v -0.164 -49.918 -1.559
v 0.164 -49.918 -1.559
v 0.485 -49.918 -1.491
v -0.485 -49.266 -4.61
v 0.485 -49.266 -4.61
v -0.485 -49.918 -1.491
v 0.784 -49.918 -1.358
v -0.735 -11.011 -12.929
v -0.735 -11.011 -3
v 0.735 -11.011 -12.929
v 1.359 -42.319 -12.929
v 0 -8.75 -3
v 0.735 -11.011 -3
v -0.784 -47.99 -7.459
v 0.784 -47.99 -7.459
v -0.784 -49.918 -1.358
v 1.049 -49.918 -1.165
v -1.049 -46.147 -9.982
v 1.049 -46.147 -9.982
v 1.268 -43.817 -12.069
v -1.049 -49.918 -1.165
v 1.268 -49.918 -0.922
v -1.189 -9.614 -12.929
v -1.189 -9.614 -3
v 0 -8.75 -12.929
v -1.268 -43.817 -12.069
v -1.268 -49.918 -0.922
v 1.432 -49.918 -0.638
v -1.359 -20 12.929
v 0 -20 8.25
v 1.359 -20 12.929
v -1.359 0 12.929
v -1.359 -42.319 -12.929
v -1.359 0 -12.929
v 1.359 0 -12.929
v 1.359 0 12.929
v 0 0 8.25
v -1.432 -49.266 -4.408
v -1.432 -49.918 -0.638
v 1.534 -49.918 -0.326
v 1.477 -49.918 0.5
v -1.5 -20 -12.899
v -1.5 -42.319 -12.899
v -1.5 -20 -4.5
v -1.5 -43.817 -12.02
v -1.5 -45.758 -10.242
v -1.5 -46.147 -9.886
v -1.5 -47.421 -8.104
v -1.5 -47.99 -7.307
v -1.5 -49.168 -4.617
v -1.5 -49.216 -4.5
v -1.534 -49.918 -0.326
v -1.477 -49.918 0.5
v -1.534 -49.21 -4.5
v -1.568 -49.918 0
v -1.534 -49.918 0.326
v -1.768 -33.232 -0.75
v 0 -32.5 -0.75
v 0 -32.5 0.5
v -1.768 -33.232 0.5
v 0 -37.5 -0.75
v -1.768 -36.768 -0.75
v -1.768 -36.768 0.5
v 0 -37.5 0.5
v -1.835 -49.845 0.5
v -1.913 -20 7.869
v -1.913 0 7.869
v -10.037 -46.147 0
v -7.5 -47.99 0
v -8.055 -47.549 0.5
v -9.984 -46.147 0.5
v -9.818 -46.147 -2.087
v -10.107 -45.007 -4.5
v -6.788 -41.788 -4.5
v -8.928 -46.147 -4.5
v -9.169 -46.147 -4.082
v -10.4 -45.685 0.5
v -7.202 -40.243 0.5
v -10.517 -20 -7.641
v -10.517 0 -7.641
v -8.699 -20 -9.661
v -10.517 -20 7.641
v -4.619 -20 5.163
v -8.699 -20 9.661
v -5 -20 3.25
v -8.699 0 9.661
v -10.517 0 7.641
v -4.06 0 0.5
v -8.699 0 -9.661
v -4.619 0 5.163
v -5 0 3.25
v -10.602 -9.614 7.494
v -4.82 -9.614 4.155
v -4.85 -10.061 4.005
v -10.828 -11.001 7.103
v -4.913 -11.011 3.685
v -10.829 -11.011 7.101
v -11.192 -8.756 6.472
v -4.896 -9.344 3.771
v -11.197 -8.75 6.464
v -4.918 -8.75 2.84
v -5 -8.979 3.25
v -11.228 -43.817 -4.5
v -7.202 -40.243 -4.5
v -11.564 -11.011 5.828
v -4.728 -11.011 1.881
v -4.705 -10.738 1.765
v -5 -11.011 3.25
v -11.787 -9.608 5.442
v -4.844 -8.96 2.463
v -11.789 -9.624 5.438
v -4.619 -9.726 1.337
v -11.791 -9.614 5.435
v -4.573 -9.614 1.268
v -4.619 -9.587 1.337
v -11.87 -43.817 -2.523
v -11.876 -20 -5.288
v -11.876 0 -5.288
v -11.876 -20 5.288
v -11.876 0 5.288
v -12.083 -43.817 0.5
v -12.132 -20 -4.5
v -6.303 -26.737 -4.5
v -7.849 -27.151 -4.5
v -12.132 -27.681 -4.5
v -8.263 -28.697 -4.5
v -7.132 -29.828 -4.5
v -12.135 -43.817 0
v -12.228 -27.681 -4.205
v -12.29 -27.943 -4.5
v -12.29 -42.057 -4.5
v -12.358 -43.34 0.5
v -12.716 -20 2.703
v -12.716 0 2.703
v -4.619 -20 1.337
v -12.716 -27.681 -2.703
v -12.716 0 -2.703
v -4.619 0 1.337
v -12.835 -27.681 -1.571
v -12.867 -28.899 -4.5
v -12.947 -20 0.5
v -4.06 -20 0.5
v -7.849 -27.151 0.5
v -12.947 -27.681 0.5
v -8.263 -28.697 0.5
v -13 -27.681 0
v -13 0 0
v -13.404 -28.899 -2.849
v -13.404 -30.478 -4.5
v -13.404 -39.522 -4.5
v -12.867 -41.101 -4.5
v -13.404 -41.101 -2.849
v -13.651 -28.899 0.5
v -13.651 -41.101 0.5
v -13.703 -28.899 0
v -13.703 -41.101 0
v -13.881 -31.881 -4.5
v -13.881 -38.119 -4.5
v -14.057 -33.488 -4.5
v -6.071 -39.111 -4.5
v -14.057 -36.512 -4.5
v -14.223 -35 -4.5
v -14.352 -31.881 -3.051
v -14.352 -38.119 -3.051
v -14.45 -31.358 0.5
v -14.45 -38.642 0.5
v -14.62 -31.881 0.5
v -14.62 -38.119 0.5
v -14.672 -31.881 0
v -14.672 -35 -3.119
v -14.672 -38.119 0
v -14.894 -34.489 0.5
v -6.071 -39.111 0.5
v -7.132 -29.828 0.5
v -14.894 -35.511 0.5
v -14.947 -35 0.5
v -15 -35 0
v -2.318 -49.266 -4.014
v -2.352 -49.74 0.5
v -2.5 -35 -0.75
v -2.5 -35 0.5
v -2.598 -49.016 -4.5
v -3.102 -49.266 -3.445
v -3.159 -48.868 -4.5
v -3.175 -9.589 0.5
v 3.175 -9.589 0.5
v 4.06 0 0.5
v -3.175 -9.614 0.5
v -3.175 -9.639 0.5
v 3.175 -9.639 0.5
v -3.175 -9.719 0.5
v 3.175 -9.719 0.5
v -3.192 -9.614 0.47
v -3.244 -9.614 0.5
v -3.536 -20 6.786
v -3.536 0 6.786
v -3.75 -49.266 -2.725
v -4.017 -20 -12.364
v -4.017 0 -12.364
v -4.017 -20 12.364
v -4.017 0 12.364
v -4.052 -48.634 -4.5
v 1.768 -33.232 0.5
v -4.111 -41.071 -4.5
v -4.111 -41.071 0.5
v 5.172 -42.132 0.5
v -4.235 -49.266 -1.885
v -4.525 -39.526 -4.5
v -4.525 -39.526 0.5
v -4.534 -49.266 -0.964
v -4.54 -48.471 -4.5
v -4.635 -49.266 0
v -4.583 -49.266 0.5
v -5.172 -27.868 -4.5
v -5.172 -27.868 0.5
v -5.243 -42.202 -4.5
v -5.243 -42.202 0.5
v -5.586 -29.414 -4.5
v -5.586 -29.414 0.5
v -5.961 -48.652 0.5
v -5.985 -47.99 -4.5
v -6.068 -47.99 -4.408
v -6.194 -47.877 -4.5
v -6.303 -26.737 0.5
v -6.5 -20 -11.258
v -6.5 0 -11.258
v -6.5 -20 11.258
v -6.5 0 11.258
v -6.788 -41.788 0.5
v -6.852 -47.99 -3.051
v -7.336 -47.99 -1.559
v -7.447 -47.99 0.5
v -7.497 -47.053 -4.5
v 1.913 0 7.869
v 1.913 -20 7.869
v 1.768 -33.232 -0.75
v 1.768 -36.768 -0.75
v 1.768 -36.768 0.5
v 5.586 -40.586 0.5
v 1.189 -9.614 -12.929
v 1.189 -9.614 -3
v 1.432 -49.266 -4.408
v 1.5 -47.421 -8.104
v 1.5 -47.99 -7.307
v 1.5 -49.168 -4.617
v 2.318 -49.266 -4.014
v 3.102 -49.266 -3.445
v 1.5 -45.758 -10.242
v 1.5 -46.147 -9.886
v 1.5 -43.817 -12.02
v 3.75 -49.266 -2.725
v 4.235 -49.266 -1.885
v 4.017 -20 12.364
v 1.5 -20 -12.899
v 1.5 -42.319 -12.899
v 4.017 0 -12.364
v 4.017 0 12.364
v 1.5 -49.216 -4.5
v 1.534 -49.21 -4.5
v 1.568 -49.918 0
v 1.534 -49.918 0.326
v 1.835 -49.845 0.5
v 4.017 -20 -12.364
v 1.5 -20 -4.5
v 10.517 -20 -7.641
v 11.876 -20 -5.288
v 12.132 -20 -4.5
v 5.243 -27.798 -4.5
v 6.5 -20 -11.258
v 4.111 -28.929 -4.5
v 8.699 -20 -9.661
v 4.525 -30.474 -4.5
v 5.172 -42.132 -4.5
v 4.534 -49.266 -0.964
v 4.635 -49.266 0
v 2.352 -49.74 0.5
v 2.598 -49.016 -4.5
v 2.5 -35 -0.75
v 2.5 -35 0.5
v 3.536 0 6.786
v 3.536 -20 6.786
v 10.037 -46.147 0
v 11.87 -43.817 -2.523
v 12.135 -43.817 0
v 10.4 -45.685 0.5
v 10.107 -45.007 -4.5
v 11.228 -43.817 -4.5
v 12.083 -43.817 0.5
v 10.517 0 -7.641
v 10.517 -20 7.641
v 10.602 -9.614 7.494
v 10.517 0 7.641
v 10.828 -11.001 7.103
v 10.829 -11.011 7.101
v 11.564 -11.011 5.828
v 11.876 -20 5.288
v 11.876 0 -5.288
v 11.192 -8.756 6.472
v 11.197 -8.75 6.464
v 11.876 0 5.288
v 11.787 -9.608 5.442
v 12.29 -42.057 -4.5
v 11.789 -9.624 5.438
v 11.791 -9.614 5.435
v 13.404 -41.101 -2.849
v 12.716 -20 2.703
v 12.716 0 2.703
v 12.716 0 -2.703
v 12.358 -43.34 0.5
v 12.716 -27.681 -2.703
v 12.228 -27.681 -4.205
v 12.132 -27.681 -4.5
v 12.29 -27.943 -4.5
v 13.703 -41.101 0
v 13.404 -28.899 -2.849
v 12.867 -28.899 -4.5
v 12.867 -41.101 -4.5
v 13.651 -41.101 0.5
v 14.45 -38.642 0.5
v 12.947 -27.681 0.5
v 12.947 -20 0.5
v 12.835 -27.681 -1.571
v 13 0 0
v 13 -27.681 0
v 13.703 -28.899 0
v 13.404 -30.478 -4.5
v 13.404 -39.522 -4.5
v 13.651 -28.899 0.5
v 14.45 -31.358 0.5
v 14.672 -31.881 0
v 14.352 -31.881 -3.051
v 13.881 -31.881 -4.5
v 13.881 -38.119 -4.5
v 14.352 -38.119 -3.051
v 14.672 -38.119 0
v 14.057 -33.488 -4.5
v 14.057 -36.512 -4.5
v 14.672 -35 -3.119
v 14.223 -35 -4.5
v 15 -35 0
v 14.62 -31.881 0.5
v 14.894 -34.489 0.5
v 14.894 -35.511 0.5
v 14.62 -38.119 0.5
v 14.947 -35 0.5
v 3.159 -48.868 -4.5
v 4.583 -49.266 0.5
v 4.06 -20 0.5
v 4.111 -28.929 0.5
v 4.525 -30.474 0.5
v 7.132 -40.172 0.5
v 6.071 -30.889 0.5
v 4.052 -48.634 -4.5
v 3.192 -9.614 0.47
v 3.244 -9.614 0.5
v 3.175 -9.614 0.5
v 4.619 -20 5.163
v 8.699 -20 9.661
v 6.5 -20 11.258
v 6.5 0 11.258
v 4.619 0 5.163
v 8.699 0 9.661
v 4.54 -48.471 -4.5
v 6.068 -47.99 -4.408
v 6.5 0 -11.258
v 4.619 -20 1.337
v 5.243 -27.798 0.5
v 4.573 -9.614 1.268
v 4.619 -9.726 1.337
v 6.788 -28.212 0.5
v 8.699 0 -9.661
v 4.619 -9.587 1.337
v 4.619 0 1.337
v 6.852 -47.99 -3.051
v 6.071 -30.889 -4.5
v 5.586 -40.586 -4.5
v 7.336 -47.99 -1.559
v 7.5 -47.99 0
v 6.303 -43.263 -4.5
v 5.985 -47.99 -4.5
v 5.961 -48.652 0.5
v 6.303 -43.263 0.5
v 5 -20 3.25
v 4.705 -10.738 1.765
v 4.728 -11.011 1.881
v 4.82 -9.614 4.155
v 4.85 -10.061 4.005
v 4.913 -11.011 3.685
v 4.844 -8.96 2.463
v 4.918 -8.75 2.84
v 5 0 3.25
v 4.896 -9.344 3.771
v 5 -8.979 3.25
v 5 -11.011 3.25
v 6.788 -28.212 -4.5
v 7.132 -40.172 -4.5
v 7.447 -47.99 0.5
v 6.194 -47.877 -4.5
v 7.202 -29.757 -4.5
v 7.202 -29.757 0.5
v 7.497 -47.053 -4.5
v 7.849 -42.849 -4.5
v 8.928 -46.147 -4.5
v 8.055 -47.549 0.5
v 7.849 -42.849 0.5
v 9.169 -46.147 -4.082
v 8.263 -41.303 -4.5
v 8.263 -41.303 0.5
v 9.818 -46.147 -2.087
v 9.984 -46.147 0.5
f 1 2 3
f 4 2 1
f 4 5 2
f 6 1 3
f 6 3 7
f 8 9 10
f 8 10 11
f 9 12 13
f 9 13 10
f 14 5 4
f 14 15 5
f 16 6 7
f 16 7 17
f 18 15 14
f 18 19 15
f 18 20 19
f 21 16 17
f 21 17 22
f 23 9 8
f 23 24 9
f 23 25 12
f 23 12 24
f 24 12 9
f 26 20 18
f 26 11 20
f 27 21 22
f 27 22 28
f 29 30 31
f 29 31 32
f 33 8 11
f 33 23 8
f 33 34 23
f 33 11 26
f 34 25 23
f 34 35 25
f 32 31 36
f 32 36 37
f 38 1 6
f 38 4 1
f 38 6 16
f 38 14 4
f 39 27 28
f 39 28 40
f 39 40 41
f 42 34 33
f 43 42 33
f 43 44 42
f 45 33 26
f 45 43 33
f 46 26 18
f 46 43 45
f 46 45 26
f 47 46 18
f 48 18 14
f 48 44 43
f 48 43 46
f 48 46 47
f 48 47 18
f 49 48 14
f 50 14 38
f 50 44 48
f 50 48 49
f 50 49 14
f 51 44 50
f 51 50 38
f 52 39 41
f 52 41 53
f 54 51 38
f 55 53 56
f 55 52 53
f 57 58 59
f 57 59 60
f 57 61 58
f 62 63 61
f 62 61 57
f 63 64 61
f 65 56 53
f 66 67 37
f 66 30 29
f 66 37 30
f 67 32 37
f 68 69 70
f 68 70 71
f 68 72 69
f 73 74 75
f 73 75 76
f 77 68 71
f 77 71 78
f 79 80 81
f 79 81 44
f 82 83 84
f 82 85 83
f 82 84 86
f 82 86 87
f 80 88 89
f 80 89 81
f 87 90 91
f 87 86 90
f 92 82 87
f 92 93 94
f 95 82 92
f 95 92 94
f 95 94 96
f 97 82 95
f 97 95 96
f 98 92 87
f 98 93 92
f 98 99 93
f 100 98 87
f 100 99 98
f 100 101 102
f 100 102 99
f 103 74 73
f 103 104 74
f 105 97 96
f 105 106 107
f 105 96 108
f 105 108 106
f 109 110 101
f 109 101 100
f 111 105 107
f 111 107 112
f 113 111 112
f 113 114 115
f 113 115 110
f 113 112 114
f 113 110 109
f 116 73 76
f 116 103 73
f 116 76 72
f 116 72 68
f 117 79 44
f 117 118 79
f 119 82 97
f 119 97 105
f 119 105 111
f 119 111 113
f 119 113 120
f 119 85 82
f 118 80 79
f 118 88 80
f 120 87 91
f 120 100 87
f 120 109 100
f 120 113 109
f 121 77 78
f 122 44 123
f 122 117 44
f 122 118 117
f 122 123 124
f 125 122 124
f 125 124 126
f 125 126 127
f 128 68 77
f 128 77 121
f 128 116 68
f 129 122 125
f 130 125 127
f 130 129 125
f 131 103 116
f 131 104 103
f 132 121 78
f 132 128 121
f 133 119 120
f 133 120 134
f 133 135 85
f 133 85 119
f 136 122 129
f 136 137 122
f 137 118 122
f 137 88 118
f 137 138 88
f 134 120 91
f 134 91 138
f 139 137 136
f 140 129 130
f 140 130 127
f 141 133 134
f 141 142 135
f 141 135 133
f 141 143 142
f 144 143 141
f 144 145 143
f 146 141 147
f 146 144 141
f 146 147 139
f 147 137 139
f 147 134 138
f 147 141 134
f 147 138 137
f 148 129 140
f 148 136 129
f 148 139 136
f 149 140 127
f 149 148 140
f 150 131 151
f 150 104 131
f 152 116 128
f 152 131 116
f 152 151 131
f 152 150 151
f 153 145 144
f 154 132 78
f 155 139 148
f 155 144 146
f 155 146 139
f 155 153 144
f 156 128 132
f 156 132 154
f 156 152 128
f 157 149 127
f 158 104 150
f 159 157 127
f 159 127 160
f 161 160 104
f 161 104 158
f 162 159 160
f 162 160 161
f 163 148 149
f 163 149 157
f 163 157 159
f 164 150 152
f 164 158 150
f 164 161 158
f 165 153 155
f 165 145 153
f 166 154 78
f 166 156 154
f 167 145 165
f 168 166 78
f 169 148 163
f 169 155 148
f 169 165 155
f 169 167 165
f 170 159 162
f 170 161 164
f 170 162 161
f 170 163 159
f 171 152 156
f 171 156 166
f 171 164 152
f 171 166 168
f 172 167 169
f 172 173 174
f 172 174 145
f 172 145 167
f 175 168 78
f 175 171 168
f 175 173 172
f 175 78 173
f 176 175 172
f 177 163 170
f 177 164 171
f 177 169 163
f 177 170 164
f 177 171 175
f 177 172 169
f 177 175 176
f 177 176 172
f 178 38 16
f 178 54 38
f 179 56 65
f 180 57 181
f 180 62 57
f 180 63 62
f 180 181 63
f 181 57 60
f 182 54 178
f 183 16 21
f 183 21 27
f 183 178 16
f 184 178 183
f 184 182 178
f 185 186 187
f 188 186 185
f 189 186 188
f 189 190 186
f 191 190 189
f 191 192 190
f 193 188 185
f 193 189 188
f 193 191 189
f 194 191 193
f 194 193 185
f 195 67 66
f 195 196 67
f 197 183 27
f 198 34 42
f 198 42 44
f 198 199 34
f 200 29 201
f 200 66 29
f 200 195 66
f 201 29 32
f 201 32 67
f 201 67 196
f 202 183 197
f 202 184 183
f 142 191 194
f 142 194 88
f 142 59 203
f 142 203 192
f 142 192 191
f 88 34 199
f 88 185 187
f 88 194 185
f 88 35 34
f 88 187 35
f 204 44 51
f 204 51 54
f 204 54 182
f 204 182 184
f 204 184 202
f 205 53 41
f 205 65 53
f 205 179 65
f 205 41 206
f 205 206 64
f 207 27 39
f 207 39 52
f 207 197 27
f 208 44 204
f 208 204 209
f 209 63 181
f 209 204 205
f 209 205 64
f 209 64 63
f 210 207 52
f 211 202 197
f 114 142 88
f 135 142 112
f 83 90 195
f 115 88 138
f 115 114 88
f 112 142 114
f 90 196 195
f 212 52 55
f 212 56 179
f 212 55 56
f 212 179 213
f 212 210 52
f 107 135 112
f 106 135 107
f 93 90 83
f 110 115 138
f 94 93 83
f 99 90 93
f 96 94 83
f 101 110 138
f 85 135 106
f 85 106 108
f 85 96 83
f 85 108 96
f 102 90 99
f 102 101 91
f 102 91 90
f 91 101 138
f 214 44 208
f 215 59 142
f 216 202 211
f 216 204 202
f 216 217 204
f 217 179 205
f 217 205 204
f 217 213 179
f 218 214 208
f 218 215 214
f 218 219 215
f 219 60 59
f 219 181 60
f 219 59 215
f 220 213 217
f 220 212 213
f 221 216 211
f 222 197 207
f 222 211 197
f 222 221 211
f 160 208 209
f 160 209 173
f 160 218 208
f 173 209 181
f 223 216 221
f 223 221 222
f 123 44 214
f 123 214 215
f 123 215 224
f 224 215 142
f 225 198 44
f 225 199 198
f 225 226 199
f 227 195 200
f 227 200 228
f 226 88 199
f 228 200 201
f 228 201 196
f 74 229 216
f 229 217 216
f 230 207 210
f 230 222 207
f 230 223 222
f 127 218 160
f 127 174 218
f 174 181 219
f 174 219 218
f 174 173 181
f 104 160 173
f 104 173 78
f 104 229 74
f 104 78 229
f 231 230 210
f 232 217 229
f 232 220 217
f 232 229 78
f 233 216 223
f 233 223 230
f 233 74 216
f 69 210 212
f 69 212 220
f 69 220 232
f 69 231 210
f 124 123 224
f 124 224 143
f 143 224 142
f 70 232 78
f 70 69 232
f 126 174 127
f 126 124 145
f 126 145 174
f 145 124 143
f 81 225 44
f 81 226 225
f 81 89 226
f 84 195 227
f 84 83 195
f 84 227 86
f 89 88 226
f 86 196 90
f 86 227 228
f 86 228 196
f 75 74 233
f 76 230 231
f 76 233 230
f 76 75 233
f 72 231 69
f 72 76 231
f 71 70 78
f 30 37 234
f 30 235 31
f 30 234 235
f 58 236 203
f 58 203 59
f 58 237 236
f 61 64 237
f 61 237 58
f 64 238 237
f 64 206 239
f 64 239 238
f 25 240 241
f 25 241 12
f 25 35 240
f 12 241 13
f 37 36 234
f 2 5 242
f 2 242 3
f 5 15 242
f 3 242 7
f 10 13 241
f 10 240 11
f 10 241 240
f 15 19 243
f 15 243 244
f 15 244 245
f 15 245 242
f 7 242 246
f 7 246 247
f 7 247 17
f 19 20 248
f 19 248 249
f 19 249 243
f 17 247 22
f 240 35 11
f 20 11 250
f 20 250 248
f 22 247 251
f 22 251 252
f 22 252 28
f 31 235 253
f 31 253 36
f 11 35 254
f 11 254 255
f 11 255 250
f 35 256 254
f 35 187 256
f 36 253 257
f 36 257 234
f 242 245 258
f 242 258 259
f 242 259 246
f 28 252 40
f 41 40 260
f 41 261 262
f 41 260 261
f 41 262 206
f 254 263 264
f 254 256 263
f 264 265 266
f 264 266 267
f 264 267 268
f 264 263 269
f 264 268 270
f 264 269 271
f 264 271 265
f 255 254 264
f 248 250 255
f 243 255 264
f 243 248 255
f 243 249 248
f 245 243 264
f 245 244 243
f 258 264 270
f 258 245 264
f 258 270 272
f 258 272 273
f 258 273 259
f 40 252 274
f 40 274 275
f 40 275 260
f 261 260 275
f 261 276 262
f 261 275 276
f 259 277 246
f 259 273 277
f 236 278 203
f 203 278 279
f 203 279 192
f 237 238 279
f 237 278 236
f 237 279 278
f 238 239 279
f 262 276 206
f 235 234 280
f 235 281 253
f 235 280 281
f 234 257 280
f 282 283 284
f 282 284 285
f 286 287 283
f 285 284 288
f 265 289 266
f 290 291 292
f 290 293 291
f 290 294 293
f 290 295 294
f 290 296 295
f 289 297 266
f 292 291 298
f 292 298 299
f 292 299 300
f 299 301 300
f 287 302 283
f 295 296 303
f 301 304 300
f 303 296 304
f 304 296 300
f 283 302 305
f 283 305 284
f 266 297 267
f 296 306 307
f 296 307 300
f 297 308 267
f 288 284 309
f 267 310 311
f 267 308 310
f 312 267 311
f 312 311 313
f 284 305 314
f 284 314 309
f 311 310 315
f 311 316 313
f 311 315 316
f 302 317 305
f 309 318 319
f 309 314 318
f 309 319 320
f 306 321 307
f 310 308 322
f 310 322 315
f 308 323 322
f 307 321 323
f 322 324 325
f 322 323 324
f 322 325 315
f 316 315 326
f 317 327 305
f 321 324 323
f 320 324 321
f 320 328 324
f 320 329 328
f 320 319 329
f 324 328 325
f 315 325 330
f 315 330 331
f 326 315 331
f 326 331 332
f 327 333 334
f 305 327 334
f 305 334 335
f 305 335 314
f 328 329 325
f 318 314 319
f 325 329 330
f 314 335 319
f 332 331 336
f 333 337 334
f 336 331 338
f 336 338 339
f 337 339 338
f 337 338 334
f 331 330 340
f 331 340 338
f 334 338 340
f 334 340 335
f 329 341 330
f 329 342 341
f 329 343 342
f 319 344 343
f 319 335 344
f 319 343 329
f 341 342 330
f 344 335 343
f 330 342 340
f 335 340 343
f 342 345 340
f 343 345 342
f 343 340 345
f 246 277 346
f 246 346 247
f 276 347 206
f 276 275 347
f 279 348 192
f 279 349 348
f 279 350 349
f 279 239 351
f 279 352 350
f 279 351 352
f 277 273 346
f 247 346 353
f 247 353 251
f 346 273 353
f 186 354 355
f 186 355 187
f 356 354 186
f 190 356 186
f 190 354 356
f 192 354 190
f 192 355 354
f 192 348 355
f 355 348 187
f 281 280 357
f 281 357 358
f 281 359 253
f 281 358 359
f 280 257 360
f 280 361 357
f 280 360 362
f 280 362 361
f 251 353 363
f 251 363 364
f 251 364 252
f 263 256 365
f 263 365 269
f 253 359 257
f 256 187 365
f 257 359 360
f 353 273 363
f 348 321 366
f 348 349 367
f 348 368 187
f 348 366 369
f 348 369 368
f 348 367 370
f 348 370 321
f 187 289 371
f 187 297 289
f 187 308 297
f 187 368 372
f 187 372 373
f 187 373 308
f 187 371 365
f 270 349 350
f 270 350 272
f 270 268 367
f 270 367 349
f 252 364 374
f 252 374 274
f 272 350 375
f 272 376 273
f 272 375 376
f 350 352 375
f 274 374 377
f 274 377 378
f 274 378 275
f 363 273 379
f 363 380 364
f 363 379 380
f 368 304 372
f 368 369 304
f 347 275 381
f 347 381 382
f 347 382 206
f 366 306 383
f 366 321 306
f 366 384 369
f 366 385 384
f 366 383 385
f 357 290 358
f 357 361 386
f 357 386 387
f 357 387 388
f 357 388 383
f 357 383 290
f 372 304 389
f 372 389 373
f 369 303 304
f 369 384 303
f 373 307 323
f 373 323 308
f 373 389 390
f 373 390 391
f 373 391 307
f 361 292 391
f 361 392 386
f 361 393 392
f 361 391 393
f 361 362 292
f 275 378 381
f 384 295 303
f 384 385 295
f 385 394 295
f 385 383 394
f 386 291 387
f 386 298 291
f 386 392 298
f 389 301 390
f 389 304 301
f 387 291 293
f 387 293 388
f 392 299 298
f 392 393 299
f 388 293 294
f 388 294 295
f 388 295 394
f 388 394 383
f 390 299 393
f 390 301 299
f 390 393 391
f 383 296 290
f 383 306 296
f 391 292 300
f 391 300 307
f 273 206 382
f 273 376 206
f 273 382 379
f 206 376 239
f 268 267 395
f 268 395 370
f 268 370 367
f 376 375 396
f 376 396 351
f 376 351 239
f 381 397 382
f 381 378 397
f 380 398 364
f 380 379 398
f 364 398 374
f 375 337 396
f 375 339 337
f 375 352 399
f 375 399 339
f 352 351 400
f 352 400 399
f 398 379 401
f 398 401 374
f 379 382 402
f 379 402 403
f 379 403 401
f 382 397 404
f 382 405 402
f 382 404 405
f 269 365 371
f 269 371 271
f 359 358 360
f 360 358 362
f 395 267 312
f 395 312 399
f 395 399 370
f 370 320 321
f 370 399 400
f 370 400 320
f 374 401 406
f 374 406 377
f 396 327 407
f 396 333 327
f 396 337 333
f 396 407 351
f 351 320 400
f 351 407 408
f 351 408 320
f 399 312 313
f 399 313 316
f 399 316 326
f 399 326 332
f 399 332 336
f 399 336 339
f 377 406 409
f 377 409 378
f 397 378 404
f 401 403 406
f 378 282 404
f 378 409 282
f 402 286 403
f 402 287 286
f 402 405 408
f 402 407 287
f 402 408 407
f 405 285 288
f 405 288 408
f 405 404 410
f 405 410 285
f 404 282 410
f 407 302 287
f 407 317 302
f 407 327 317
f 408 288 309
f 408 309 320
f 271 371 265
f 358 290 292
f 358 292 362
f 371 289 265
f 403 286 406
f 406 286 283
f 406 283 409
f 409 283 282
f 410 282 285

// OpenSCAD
pipeInsideHeight = 20;
pipeInsideRadius = 13;
screwHoleHeight = 10;
screwHoleSmallRadius = 1.25;
screwHoleLargeRadius = 1.6;
pipeNumberHoles = 3;
wireHoleRadius = 5;
motorPlatformHeight = 5;
motorPlatformLength = 30;
motorPlatformOffset = -2;
motorPlatformSuppWidth = 3;
motorPlatformRadius = 15;
motorScrewSmallRadius = 8;
motorScrewLargeRadius = 9.5;
motorScrewRotation = 45;
motorMiddleHoleRadius = 2.5;
motorMiddleHoleHeight = 1.5;

rotate([90, 0, 0]) {
    difference() {
        union() {
            difference() {
                cylinder(pipeInsideHeight, pipeInsideRadius, pipeInsideRadius);
                translate([0, pipeInsideRadius/4, -1]) {
                    cylinder(pipeInsideHeight+2, wireHoleRadius, wireHoleRadius);
                }
            }
            translate([0, motorPlatformOffset, (motorPlatformLength+pipeInsideHeight)/2]) {
                intersection() {
                    translate([0, -motorPlatformOffset, 0]) {
                        union() {
                            translate([0, 0, -pipeInsideRadius/2]) {
                                cylinder(motorPlatformLength+pipeInsideHeight-pipeInsideRadius, pipeInsideRadius, pipeInsideRadius, true);
                            }
                            translate([0, 0, (motorPlatformLength+pipeInsideHeight)/2-motorPlatformRadius]) {
                                sphere(motorPlatformRadius);
                            }
                        }
                    }
                    difference() {
                        union() {
                            intersection() {
                                translate([0, -motorPlatformOffset, 0]) {
                                        cylinder(motorPlatformLength+pipeInsideHeight, pipeInsideRadius, pipeInsideRadius, true);
                                    }
                                rotate([0, 0, 90]) {
                                    translate([-pipeInsideRadius/2, 0, 0]) {
                                        cube([pipeInsideRadius, motorPlatformSuppWidth, motorPlatformLength+pipeInsideHeight], true);
                                    }
                                }
                            }
                            difference() {
                                cube([motorPlatformRadius*2, motorPlatformHeight, motorPlatformLength+pipeInsideHeight], true);
                                for(i = [0:2]) {
                                    translate([0, 0, (motorPlatformLength+pipeInsideHeight)/2-motorPlatformRadius]) {
                                        rotate([0, 180*i+motorScrewRotation, 0]) {
                                            translate([motorScrewSmallRadius, 0, 0]) {
                                                rotate([90, 0, 0]) {
                                                    cylinder(motorPlatformHeight+2, screwHoleLargeRadius, screwHoleLargeRadius,true);
                                                }
                                            }
                                        }
                                    }
                                    translate([0, 0, (motorPlatformLength+pipeInsideHeight)/2-motorPlatformRadius]) {
                                        rotate([0, 180*i+90+motorScrewRotation, 0]) {
                                            translate([motorScrewLargeRadius, 0, 0]) {
                                                rotate([90, 0, 0]) {
                                                    cylinder(motorPlatformHeight+2, screwHoleLargeRadius, screwHoleLargeRadius,true);
                                                }
                                            }
                                        }
                                    }
                                }
                            }   
                        }
                        translate([0, -motorPlatformOffset, (motorPlatformLength+pipeInsideHeight)/2-motorPlatformRadius]) {
                            rotate([90, 0, 0]) {
                                cylinder(motorMiddleHoleHeight, motorMiddleHoleRadius, motorMiddleHoleRadius, true);
                            }
                        }
                    }
                }
            }
        }
        for(i = [0:pipeNumberHoles]){
            rotate([0, 0, (360/pipeNumberHoles)*i+30]) {
                translate([pipeInsideRadius-screwHoleHeight, 0, pipeInsideHeight/2]) {
                    rotate([0, 90, 0]) {
                        cylinder(screwHoleHeight, screwHoleSmallRadius, screwHoleSmallRadius);
                    }
                }
            }
        }
    }
}
